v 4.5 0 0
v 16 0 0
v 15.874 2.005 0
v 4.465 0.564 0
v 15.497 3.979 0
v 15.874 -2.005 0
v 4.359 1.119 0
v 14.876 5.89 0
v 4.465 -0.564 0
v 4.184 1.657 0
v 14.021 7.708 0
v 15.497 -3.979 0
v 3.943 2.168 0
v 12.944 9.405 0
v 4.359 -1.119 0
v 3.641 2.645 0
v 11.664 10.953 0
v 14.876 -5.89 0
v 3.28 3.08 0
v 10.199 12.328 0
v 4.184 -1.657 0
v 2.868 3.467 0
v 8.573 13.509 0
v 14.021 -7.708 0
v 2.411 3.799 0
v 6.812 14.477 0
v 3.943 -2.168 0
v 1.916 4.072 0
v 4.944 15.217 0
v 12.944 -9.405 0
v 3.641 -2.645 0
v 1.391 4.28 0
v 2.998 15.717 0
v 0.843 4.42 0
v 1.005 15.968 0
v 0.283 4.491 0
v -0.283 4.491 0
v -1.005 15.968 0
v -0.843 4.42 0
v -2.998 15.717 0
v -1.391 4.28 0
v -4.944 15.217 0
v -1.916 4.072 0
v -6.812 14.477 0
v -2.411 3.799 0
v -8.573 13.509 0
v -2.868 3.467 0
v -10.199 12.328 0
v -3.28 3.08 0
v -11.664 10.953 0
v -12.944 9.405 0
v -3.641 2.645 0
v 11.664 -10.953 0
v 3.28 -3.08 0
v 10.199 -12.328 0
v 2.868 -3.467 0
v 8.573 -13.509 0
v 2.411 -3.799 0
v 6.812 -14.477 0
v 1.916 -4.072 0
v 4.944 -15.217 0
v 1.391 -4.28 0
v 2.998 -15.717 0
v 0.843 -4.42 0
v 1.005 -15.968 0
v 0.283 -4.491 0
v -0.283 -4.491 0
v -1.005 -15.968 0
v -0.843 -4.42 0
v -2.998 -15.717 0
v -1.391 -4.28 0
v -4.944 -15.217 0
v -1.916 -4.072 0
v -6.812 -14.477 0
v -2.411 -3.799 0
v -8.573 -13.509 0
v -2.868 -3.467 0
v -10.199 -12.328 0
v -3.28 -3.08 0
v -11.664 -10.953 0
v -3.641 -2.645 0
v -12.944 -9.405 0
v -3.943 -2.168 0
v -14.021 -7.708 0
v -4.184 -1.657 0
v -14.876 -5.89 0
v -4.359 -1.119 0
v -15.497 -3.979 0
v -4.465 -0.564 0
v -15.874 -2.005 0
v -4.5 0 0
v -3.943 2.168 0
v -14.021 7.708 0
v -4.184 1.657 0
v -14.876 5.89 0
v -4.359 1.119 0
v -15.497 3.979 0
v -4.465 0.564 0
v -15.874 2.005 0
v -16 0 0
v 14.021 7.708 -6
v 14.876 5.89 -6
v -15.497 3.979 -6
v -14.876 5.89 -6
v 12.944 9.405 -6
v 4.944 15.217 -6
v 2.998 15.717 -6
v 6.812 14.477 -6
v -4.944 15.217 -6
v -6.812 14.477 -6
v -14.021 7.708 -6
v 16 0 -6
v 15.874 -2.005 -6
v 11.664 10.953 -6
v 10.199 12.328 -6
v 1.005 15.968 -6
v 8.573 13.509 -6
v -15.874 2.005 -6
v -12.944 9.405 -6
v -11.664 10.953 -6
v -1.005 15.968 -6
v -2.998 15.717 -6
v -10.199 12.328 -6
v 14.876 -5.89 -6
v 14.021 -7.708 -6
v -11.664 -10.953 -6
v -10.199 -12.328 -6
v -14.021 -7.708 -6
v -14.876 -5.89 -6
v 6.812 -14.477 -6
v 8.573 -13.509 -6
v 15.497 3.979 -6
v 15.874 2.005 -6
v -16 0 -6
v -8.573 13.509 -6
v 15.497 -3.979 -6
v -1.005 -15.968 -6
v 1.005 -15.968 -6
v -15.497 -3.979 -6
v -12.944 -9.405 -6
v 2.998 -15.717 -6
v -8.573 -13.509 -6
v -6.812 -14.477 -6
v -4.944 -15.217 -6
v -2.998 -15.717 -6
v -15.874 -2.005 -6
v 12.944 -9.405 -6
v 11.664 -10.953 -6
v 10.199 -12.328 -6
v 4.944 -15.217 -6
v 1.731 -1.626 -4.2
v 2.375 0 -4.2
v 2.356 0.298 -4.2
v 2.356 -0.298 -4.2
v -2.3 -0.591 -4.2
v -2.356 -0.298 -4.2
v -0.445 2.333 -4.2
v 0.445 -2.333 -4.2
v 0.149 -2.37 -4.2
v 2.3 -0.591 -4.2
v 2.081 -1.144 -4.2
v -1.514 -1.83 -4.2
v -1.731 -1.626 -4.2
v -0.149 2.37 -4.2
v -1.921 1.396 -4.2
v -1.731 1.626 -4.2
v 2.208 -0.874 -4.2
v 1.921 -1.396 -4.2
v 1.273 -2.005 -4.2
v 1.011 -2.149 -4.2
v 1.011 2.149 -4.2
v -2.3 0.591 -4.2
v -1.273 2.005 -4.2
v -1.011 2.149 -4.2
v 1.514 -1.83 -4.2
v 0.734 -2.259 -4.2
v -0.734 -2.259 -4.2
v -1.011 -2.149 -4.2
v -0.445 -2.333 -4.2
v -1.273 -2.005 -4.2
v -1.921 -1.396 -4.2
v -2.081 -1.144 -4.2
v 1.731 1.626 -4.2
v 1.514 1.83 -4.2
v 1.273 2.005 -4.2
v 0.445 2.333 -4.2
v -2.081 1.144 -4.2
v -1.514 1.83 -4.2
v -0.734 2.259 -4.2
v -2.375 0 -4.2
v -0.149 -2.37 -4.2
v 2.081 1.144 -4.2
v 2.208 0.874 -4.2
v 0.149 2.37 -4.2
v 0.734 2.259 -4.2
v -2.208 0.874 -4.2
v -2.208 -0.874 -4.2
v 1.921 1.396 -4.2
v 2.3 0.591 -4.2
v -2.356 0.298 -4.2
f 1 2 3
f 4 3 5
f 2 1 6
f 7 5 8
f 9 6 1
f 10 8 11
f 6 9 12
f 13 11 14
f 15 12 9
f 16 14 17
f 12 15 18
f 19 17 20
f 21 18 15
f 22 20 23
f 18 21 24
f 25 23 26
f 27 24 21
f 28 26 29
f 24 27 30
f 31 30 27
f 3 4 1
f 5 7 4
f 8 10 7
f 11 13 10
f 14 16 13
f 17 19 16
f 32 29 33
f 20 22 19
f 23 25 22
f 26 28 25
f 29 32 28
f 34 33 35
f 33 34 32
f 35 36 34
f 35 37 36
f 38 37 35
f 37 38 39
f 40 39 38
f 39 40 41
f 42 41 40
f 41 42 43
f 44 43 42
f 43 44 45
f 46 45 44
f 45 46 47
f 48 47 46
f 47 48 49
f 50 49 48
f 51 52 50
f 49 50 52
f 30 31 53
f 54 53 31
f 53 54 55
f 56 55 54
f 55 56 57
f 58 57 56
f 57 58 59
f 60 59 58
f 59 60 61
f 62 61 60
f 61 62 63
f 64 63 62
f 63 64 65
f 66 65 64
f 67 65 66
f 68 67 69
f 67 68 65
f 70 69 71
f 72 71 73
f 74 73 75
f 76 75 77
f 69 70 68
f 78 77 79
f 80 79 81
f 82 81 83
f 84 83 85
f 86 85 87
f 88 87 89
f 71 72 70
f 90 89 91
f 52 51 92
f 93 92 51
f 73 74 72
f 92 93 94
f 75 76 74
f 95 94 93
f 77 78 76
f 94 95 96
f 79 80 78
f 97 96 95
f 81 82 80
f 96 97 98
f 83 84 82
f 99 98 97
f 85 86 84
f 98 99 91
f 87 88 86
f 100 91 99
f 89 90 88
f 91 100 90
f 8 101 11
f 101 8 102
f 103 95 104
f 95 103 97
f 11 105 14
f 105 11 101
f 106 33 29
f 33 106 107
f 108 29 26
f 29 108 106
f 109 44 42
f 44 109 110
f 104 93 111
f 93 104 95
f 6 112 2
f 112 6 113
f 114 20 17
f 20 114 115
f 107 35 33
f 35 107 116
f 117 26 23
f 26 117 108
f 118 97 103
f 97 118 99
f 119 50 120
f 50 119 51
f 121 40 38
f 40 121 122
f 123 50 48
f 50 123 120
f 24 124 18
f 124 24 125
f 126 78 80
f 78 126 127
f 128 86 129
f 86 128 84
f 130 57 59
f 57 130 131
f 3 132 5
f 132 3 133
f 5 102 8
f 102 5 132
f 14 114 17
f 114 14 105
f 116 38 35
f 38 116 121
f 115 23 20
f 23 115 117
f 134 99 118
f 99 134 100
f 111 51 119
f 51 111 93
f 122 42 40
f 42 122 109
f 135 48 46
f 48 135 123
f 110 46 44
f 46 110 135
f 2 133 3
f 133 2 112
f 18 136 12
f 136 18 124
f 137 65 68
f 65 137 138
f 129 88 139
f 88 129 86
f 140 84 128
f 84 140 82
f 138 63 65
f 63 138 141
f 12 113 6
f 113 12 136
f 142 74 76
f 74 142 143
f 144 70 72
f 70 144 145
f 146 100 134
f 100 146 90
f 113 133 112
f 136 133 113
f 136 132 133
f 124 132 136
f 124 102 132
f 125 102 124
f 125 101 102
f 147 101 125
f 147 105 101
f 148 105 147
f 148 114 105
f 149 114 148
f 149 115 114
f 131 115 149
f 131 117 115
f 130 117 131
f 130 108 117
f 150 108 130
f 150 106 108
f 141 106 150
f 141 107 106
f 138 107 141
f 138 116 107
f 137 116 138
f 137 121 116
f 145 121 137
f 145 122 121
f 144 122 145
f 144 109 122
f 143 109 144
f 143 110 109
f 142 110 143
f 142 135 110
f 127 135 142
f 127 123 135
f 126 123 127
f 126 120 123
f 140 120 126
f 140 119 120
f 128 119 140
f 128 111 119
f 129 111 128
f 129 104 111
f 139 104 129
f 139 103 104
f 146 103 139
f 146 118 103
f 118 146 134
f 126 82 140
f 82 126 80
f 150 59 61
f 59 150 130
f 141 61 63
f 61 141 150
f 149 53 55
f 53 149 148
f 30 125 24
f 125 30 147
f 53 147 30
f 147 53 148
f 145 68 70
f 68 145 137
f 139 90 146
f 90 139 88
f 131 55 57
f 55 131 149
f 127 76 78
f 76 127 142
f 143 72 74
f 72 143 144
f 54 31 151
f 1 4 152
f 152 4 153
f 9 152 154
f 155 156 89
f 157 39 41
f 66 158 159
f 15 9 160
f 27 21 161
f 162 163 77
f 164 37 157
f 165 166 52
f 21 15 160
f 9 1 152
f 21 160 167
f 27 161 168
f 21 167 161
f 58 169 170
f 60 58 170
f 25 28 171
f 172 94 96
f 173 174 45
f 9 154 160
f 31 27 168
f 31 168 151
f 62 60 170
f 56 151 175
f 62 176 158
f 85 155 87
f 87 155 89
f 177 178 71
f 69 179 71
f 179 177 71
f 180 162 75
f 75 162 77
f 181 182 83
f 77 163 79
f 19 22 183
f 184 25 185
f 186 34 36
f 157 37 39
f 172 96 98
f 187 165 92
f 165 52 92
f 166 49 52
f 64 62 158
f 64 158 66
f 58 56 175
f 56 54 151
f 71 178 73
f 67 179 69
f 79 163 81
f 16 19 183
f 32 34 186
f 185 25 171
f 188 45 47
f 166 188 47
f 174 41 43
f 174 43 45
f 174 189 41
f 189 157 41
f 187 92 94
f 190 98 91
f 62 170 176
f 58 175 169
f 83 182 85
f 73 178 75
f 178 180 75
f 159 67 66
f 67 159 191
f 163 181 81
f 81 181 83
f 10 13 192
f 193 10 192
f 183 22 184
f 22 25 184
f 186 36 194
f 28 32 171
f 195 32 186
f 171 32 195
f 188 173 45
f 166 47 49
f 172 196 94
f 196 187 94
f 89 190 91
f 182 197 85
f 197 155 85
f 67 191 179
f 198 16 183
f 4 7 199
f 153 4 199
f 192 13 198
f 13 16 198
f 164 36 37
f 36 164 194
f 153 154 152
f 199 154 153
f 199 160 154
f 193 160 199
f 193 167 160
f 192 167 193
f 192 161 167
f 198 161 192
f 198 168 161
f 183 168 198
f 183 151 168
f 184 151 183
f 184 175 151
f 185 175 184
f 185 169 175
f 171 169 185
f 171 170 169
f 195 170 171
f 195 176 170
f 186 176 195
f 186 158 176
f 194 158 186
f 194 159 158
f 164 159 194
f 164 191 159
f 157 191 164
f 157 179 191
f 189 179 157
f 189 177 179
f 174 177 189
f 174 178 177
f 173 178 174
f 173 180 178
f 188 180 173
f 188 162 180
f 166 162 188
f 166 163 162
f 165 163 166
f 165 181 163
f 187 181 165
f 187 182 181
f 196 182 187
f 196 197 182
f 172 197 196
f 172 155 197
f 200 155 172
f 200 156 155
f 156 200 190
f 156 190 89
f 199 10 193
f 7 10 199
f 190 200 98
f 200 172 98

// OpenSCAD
$fn = 50;


difference() {
	union() {
		translate(v = [0, 0, -3.0000000000]) {
			cylinder(h = 3, r = 10.0000000000);
		}
		translate(v = [0, 0, -6.0000000000]) {
			cylinder(h = 6, r = 16.0000000000);
		}
	}
	union() {
		translate(v = [0, 0, 0]) {
			rotate(a = [0, 0, 0]) {
				difference() {
					union() {
						#translate(v = [0, 0, -3.0000000000]) {
							cylinder(h = 3, r = 2.2500000000);
						}
						#translate(v = [0, 0, -4.2000000000]) {
							cylinder(h = 4.2000000000, r = 10.0000000000, r1 = 2.3750000000, r2 = 4.5000000000);
						}
						#translate(v = [0, 0, -3.0000000000]) {
							cylinder(h = 3, r = 2.3750000000);
						}
						#translate(v = [0, 0, -3.0000000000]) {
							cylinder(h = 3, r = 2.2500000000);
						}
					}
					union();
				}
			}
		}
	}
}
